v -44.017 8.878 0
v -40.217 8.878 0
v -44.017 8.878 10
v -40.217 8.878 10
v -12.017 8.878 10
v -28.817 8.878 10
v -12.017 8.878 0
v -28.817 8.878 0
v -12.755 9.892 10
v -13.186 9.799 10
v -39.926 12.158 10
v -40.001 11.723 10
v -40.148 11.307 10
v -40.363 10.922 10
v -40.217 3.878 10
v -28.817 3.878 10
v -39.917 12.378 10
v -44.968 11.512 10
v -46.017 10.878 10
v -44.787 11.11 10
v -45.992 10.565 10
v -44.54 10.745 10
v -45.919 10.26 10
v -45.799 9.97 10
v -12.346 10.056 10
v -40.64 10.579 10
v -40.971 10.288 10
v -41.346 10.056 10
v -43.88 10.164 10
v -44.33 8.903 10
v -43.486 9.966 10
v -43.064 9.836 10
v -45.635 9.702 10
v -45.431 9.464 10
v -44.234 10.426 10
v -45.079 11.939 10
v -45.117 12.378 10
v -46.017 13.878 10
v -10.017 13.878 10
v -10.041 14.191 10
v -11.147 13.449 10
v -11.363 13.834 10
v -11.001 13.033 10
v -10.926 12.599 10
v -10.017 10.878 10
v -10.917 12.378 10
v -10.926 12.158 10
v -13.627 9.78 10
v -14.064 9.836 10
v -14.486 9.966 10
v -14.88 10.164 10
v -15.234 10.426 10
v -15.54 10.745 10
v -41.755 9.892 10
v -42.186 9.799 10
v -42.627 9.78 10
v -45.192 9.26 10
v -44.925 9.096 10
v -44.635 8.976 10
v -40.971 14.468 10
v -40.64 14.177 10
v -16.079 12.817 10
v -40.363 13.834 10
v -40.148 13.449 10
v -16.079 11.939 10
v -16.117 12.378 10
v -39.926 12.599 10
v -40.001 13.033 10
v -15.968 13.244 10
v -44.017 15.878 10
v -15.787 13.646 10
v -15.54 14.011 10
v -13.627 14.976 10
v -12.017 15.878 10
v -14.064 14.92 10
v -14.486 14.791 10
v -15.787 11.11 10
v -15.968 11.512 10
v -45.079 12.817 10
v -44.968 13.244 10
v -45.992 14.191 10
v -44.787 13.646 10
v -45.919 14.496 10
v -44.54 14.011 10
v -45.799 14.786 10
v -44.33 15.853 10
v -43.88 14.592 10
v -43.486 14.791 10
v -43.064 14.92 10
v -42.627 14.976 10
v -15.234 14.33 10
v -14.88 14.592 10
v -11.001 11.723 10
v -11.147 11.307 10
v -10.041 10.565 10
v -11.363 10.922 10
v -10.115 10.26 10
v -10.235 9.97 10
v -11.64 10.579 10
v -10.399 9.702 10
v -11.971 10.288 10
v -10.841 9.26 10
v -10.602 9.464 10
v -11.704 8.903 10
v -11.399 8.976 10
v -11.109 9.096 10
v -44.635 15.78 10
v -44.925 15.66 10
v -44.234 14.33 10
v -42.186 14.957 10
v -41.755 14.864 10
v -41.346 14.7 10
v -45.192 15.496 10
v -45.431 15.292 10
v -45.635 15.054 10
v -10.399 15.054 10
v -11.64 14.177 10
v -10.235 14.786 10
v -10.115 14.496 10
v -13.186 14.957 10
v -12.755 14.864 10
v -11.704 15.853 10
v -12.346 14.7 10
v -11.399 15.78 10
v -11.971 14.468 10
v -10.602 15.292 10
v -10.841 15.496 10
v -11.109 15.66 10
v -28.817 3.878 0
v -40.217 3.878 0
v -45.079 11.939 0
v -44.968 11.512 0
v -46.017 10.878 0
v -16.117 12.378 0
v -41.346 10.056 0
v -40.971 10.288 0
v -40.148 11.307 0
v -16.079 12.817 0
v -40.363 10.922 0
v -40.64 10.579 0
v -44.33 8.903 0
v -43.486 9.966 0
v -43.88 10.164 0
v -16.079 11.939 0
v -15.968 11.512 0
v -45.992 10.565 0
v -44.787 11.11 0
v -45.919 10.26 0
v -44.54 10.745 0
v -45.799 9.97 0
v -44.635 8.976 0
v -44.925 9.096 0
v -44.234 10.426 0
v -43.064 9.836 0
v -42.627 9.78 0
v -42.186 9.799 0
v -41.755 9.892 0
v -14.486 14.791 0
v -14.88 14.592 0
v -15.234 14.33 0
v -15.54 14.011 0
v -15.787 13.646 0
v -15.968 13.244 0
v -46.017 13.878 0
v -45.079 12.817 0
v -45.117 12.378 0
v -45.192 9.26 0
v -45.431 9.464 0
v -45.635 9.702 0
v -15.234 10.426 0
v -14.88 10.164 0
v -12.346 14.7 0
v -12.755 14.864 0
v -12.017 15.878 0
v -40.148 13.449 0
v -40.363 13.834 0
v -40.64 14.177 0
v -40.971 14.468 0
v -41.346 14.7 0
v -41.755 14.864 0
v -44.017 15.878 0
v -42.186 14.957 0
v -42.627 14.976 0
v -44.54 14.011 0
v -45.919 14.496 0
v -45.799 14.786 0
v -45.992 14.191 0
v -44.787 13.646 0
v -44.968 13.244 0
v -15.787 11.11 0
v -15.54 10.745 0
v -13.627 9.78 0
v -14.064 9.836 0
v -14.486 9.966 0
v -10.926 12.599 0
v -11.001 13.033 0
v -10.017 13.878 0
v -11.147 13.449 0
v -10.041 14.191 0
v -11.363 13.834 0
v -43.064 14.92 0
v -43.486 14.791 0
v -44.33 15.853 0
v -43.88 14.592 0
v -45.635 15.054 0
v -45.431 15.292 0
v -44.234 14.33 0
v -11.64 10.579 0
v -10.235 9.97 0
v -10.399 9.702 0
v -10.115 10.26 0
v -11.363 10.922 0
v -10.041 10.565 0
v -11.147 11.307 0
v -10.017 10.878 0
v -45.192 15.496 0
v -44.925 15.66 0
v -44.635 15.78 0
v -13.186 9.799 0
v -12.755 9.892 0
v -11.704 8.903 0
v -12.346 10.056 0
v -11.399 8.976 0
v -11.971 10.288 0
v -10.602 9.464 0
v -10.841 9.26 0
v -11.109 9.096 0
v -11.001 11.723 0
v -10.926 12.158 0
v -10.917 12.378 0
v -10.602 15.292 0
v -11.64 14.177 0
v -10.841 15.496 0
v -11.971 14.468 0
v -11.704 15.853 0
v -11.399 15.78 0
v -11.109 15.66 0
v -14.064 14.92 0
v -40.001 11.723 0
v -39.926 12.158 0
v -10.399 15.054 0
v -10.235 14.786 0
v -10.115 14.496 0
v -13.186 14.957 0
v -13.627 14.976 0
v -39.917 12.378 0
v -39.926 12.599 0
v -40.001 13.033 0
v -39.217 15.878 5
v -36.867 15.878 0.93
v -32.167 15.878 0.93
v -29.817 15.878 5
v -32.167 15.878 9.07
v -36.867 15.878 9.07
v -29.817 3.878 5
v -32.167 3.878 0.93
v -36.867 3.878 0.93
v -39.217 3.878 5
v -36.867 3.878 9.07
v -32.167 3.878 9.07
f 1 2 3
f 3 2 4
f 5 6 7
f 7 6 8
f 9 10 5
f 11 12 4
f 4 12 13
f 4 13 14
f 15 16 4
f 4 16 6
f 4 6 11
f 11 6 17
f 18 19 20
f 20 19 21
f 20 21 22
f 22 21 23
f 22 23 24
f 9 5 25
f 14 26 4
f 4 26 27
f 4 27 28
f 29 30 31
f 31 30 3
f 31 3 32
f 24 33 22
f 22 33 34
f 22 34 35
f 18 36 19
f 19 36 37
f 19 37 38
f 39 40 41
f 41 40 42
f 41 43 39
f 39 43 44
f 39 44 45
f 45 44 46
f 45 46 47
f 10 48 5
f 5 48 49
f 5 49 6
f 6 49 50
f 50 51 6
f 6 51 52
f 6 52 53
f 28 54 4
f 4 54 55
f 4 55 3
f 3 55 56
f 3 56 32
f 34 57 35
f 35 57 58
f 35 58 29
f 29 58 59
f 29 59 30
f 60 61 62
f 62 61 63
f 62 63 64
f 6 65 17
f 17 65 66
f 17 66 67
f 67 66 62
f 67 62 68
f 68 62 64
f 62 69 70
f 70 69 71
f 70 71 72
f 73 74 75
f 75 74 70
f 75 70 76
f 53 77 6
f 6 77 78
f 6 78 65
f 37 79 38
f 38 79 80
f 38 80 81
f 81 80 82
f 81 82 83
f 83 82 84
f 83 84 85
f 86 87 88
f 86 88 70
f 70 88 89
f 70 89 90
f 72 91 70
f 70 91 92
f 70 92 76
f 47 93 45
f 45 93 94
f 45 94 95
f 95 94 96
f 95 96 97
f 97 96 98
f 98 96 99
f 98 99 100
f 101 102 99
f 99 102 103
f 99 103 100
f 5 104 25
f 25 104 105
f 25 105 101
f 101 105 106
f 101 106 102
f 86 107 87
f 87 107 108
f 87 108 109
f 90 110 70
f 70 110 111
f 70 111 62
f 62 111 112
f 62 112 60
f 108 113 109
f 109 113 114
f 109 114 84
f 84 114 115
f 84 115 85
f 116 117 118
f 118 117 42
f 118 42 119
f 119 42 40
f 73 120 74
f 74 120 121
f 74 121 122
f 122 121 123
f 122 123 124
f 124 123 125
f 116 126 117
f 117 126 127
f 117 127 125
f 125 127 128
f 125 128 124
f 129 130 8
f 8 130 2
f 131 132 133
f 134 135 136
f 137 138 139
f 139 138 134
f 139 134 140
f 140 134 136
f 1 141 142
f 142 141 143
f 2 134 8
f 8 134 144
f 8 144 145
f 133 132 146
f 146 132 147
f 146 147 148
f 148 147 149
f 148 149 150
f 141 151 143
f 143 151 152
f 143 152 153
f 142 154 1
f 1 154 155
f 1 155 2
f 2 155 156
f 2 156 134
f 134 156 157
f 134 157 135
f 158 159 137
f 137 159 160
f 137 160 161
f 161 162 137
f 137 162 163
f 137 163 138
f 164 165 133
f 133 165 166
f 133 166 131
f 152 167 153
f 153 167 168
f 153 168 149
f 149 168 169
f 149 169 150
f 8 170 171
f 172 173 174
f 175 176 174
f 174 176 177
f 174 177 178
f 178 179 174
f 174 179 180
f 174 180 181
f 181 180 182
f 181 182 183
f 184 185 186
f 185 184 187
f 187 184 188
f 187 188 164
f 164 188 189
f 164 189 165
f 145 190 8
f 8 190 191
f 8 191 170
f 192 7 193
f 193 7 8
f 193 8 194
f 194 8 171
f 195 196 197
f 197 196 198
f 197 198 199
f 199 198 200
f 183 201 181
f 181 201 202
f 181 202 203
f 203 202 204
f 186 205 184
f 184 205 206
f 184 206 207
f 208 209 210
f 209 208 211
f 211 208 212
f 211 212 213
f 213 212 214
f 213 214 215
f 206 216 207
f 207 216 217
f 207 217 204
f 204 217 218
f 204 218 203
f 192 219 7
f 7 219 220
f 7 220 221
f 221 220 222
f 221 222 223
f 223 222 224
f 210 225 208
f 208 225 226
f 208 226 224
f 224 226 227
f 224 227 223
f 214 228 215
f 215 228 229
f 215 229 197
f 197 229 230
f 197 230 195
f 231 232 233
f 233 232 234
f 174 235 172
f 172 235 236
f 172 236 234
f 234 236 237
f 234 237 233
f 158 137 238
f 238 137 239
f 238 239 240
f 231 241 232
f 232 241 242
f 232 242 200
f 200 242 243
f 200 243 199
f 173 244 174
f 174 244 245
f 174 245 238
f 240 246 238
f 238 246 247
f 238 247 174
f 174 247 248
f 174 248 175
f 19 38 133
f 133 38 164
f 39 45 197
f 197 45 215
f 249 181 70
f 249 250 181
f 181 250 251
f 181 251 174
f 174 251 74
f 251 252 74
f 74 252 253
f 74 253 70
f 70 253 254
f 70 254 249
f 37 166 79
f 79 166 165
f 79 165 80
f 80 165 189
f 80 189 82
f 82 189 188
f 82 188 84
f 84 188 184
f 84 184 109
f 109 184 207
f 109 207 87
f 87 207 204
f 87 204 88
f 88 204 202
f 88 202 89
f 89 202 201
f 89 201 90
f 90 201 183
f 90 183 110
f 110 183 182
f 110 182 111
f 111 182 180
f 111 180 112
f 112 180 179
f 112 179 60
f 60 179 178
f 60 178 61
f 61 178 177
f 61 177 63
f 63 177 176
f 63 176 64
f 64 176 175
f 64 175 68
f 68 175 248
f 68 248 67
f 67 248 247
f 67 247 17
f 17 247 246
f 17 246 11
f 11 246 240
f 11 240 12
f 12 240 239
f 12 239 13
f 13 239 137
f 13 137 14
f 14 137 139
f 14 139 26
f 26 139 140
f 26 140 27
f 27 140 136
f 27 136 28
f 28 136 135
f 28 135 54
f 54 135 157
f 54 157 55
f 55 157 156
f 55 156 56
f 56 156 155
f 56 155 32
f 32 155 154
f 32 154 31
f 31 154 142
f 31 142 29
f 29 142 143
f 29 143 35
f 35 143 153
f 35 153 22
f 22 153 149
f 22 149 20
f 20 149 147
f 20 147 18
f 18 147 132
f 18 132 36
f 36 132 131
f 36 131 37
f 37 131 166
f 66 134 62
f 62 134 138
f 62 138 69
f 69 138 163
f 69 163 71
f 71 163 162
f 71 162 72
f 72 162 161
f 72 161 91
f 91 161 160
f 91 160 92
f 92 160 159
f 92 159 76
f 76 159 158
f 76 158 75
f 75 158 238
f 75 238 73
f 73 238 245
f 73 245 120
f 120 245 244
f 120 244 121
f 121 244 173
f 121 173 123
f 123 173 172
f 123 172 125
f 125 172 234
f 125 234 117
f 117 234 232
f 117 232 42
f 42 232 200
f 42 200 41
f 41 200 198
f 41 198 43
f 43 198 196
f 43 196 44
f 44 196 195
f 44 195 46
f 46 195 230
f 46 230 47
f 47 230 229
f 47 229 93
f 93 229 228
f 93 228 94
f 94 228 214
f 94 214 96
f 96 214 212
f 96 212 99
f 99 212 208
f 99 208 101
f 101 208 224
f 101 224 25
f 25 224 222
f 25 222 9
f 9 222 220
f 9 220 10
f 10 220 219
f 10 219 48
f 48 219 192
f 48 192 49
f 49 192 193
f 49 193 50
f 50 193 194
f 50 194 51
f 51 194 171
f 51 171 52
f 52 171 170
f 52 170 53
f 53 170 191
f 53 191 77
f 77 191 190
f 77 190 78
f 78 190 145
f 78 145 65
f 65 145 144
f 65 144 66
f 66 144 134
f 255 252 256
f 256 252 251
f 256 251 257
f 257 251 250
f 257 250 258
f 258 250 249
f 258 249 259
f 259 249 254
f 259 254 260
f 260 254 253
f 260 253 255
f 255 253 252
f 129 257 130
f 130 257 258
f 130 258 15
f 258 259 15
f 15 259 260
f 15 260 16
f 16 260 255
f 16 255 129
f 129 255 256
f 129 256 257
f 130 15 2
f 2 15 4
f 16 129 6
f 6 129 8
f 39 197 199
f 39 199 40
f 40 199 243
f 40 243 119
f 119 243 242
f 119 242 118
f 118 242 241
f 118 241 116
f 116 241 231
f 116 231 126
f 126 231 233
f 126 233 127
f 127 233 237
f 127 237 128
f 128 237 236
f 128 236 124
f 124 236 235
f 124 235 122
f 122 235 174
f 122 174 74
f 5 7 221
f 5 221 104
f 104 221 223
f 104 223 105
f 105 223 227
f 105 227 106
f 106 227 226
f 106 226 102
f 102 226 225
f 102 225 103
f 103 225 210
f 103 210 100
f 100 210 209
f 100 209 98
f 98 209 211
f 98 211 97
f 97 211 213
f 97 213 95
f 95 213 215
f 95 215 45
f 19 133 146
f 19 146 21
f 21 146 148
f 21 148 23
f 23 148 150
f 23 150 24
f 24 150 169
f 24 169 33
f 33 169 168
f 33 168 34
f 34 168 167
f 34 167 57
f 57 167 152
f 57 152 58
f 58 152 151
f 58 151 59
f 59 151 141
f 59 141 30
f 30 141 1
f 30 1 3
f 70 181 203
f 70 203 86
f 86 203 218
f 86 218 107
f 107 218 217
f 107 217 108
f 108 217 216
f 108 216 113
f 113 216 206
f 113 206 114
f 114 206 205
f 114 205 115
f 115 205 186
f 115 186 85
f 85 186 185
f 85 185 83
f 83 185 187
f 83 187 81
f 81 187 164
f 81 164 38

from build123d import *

# Parameters (mm, degrees)
CROQUIS1_W              = 36
CROQUIS1_H              = 7
CROQUIS1_R              = 2.6
SALIENTE_EXTRUIR1_DEPTH = 10
CORTAR_EXTRUIR1_DEPTH   = 7
CROQUIS4_W              = 11.4
CROQUIS4_H              = 10
SALIENTE_EXTRUIR2_DEPTH = 5
REDONDEO1_R             = 2


with BuildPart() as part:
    # Croquis1 → Saliente-Extruir1 (new body)
    with BuildSketch(Plane.XY):
        with Locations((-28.016694491, 12.37804878)):
            Rectangle(CROQUIS1_W, CROQUIS1_H)
        with Locations((-42.516694491, 12.37804878)):
            Circle(CROQUIS1_R, mode=Mode.SUBTRACT)
        with Locations((-13.516694491, 12.37804878)):
            Circle(CROQUIS1_R, mode=Mode.SUBTRACT)
    extrude(amount=SALIENTE_EXTRUIR1_DEPTH)

    # Croquis2 → Cortar-Extruir1 (cut)
    with BuildSketch(Plane.XZ.offset(-8.87804878)):
        Polygon((-29.816694491, 5), (-32.166694491, 9.070319398), (-36.866694491, 9.070319398), (-39.216694491, 5), (-36.866694491, 0.929680602), (-32.166694491, 0.929680602), align=None)
    extrude(amount=-CORTAR_EXTRUIR1_DEPTH, mode=Mode.SUBTRACT)

    # Croquis4 → Saliente-Extruir2 (add)
    with BuildSketch(Plane.XZ.offset(-8.87804878)):
        with Locations((-34.516694491, 5)):
            Rectangle(CROQUIS4_W, CROQUIS4_H)
        Polygon((-29.816694491, 5), (-32.166694491, 9.070319398), (-36.866694491, 9.070319398), (-39.216694491, 5), (-36.866694491, 0.929680602), (-32.166694491, 0.929680602), align=None, mode=Mode.SUBTRACT)
    extrude(amount=SALIENTE_EXTRUIR2_DEPTH)

    # Redondeo1
    redondeo1_edges = [part.edges().sort_by_distance(p)[0] for p in [
        (-10.016694491, 15.87804878, 5),
        (-10.016694491, 8.87804878, 5),
        (-46.016694491, 8.87804878, 5),
        (-46.016694491, 15.87804878, 5),
    ]]
    fillet(redondeo1_edges, radius=REDONDEO1_R)


solid = part.part
